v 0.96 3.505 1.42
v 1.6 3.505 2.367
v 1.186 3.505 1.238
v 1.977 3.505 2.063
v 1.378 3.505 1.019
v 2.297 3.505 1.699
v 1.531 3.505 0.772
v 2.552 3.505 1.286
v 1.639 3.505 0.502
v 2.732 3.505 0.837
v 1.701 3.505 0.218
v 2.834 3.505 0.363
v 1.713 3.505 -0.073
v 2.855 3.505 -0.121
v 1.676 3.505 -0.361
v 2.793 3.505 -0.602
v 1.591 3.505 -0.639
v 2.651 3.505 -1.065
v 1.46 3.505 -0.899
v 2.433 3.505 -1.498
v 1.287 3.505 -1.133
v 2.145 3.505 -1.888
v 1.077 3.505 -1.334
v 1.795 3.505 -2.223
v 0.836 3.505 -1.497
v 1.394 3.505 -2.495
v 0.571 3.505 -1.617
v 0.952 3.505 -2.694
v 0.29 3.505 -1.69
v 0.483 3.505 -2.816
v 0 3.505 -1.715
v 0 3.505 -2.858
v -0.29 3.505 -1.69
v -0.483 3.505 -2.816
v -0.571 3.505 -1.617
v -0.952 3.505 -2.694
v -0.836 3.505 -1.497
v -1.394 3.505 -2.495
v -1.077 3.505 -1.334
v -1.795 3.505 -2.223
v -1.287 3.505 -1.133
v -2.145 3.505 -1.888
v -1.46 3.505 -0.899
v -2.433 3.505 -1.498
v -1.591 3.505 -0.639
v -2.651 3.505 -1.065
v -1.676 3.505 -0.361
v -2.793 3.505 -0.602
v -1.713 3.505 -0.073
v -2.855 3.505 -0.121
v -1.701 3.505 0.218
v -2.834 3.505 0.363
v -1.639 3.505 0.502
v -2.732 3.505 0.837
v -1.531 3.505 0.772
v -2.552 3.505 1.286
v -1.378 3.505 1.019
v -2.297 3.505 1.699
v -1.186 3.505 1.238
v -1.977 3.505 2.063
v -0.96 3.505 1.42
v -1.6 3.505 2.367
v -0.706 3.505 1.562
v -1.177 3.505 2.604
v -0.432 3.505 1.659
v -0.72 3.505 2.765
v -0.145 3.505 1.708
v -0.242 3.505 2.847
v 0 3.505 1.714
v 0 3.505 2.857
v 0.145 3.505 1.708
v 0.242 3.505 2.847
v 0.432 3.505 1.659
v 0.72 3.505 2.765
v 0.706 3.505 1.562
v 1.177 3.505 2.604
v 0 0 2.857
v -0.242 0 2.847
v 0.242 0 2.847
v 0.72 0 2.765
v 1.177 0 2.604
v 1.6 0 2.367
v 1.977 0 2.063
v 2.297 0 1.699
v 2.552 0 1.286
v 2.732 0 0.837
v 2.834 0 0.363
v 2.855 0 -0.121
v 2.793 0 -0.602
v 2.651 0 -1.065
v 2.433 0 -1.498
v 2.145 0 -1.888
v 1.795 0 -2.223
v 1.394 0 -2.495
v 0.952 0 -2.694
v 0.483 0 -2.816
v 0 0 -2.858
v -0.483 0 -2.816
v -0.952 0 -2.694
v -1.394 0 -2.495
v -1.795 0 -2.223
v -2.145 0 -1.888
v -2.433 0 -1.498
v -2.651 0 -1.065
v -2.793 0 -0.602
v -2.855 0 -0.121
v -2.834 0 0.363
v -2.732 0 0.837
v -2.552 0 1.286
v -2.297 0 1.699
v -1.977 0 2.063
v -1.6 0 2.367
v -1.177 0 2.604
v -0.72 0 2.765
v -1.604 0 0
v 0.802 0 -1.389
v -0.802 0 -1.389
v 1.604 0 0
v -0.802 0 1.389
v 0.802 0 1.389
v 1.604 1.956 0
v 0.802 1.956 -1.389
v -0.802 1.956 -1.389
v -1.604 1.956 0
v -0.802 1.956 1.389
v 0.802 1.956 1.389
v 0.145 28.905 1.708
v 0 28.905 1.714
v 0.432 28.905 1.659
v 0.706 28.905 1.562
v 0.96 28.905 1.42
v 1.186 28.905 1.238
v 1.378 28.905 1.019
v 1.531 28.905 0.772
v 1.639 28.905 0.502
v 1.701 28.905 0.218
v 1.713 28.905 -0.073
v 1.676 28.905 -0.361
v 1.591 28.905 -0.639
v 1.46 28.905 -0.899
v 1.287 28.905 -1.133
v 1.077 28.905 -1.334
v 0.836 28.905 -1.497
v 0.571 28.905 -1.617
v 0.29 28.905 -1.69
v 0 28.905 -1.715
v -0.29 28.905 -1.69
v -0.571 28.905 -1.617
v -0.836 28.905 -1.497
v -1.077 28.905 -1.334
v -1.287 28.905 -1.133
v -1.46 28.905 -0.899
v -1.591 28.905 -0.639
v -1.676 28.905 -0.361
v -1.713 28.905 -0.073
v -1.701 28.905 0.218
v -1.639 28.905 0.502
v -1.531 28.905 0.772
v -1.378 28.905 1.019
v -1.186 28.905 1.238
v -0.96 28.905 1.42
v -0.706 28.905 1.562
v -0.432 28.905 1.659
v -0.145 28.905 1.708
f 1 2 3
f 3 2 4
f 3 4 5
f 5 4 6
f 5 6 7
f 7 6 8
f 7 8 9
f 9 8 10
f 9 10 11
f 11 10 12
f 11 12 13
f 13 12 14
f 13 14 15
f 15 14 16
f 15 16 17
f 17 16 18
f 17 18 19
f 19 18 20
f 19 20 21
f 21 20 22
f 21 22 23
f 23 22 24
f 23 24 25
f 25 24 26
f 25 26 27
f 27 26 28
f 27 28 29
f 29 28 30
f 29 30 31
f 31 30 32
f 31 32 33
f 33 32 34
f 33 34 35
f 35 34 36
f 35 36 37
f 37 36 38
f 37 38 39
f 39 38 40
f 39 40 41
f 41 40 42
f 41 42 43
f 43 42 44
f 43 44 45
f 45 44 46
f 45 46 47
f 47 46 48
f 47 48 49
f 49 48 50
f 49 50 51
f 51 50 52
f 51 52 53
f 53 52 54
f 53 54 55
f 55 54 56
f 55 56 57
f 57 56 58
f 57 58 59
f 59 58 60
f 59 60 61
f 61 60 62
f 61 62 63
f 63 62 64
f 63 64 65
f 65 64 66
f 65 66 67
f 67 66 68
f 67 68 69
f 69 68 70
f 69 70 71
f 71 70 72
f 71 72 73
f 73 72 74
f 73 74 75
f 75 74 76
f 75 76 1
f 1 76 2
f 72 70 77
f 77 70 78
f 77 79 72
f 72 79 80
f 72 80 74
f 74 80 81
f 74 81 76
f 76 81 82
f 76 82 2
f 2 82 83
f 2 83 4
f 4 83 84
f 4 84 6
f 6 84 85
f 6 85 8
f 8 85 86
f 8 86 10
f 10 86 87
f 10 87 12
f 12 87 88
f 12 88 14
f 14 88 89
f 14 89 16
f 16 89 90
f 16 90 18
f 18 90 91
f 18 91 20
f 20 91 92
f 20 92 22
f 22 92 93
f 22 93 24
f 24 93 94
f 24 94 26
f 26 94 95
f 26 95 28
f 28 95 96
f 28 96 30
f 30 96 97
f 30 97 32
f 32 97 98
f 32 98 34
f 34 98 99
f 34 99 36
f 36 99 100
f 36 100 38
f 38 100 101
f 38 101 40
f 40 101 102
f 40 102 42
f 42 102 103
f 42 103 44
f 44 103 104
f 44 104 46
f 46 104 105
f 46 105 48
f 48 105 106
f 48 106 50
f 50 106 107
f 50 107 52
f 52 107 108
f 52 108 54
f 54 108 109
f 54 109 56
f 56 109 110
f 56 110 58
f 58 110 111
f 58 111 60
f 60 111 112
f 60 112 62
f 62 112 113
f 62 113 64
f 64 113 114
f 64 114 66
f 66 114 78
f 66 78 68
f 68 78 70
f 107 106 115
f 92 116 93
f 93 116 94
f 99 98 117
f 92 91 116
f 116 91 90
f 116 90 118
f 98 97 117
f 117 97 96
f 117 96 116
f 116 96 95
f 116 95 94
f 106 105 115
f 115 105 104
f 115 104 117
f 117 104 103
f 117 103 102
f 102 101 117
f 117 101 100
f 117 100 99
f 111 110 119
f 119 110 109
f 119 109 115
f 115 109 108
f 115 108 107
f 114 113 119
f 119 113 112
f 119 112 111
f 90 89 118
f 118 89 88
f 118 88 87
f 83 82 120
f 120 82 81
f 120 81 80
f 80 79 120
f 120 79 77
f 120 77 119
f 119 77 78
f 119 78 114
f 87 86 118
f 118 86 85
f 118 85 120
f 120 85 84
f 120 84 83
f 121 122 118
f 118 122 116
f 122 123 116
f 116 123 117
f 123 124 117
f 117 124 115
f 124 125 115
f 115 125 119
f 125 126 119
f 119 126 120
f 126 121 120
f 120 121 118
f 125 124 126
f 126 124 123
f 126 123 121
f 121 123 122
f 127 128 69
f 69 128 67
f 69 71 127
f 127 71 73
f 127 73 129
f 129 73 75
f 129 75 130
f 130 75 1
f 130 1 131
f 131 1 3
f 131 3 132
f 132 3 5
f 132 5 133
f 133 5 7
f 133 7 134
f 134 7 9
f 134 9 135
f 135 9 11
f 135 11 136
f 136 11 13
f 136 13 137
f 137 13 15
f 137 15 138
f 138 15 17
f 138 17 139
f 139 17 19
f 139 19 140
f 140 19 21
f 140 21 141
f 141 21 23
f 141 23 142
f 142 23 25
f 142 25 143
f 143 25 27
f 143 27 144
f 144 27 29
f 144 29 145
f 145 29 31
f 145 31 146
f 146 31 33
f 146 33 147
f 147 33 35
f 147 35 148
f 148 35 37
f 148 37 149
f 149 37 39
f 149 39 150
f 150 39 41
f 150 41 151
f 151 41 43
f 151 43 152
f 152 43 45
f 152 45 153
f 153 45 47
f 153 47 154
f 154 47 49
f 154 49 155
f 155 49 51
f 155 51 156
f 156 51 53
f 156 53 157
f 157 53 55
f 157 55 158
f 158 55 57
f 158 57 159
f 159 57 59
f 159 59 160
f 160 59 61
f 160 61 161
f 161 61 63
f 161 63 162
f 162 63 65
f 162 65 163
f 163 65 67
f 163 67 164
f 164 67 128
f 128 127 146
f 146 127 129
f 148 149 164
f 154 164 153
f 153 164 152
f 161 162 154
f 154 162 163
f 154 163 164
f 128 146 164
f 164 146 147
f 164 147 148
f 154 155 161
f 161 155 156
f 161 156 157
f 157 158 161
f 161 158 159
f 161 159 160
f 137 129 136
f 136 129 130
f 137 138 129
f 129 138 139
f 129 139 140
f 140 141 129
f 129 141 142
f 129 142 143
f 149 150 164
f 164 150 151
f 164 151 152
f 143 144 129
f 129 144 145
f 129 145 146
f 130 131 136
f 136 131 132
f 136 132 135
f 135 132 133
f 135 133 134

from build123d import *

# Parameters (mm, degrees)
SKETCH1_R           = 2.8575
BOSS_EXTRUDE1_DEPTH = 3.5052
CUT_EXTRUDE1_DEPTH  = 1.9558
SKETCH3_R           = 1.7145
BOSS_EXTRUDE2_DEPTH = 25.4


with BuildPart() as part:
    # Sketch1 → Boss-Extrude1 (new body)
    with BuildSketch(Plane(origin=(0, 0, 0), x_dir=(1, 0, 0), z_dir=(0, 1, 0))):
        Circle(SKETCH1_R)
    extrude(amount=BOSS_EXTRUDE1_DEPTH)

    # Sketch2 → Cut-Extrude1 (cut)
    with BuildSketch(Plane.XZ):
        Polygon((1.603951217, 0), (0.801975608, 1.3890625), (-0.801975608, 1.3890625), (-1.603951217, 0), (-0.801975608, -1.3890625), (0.801975608, -1.3890625), align=None)
    extrude(amount=-CUT_EXTRUDE1_DEPTH, mode=Mode.SUBTRACT)

    # Sketch3 → Boss-Extrude2 (add)
    with BuildSketch(Plane(origin=(0, 3.5052, 0), x_dir=(1, 0, 0), z_dir=(0, 1, 0))):
        Circle(SKETCH3_R)
    extrude(amount=BOSS_EXTRUDE2_DEPTH)


solid = part.part
